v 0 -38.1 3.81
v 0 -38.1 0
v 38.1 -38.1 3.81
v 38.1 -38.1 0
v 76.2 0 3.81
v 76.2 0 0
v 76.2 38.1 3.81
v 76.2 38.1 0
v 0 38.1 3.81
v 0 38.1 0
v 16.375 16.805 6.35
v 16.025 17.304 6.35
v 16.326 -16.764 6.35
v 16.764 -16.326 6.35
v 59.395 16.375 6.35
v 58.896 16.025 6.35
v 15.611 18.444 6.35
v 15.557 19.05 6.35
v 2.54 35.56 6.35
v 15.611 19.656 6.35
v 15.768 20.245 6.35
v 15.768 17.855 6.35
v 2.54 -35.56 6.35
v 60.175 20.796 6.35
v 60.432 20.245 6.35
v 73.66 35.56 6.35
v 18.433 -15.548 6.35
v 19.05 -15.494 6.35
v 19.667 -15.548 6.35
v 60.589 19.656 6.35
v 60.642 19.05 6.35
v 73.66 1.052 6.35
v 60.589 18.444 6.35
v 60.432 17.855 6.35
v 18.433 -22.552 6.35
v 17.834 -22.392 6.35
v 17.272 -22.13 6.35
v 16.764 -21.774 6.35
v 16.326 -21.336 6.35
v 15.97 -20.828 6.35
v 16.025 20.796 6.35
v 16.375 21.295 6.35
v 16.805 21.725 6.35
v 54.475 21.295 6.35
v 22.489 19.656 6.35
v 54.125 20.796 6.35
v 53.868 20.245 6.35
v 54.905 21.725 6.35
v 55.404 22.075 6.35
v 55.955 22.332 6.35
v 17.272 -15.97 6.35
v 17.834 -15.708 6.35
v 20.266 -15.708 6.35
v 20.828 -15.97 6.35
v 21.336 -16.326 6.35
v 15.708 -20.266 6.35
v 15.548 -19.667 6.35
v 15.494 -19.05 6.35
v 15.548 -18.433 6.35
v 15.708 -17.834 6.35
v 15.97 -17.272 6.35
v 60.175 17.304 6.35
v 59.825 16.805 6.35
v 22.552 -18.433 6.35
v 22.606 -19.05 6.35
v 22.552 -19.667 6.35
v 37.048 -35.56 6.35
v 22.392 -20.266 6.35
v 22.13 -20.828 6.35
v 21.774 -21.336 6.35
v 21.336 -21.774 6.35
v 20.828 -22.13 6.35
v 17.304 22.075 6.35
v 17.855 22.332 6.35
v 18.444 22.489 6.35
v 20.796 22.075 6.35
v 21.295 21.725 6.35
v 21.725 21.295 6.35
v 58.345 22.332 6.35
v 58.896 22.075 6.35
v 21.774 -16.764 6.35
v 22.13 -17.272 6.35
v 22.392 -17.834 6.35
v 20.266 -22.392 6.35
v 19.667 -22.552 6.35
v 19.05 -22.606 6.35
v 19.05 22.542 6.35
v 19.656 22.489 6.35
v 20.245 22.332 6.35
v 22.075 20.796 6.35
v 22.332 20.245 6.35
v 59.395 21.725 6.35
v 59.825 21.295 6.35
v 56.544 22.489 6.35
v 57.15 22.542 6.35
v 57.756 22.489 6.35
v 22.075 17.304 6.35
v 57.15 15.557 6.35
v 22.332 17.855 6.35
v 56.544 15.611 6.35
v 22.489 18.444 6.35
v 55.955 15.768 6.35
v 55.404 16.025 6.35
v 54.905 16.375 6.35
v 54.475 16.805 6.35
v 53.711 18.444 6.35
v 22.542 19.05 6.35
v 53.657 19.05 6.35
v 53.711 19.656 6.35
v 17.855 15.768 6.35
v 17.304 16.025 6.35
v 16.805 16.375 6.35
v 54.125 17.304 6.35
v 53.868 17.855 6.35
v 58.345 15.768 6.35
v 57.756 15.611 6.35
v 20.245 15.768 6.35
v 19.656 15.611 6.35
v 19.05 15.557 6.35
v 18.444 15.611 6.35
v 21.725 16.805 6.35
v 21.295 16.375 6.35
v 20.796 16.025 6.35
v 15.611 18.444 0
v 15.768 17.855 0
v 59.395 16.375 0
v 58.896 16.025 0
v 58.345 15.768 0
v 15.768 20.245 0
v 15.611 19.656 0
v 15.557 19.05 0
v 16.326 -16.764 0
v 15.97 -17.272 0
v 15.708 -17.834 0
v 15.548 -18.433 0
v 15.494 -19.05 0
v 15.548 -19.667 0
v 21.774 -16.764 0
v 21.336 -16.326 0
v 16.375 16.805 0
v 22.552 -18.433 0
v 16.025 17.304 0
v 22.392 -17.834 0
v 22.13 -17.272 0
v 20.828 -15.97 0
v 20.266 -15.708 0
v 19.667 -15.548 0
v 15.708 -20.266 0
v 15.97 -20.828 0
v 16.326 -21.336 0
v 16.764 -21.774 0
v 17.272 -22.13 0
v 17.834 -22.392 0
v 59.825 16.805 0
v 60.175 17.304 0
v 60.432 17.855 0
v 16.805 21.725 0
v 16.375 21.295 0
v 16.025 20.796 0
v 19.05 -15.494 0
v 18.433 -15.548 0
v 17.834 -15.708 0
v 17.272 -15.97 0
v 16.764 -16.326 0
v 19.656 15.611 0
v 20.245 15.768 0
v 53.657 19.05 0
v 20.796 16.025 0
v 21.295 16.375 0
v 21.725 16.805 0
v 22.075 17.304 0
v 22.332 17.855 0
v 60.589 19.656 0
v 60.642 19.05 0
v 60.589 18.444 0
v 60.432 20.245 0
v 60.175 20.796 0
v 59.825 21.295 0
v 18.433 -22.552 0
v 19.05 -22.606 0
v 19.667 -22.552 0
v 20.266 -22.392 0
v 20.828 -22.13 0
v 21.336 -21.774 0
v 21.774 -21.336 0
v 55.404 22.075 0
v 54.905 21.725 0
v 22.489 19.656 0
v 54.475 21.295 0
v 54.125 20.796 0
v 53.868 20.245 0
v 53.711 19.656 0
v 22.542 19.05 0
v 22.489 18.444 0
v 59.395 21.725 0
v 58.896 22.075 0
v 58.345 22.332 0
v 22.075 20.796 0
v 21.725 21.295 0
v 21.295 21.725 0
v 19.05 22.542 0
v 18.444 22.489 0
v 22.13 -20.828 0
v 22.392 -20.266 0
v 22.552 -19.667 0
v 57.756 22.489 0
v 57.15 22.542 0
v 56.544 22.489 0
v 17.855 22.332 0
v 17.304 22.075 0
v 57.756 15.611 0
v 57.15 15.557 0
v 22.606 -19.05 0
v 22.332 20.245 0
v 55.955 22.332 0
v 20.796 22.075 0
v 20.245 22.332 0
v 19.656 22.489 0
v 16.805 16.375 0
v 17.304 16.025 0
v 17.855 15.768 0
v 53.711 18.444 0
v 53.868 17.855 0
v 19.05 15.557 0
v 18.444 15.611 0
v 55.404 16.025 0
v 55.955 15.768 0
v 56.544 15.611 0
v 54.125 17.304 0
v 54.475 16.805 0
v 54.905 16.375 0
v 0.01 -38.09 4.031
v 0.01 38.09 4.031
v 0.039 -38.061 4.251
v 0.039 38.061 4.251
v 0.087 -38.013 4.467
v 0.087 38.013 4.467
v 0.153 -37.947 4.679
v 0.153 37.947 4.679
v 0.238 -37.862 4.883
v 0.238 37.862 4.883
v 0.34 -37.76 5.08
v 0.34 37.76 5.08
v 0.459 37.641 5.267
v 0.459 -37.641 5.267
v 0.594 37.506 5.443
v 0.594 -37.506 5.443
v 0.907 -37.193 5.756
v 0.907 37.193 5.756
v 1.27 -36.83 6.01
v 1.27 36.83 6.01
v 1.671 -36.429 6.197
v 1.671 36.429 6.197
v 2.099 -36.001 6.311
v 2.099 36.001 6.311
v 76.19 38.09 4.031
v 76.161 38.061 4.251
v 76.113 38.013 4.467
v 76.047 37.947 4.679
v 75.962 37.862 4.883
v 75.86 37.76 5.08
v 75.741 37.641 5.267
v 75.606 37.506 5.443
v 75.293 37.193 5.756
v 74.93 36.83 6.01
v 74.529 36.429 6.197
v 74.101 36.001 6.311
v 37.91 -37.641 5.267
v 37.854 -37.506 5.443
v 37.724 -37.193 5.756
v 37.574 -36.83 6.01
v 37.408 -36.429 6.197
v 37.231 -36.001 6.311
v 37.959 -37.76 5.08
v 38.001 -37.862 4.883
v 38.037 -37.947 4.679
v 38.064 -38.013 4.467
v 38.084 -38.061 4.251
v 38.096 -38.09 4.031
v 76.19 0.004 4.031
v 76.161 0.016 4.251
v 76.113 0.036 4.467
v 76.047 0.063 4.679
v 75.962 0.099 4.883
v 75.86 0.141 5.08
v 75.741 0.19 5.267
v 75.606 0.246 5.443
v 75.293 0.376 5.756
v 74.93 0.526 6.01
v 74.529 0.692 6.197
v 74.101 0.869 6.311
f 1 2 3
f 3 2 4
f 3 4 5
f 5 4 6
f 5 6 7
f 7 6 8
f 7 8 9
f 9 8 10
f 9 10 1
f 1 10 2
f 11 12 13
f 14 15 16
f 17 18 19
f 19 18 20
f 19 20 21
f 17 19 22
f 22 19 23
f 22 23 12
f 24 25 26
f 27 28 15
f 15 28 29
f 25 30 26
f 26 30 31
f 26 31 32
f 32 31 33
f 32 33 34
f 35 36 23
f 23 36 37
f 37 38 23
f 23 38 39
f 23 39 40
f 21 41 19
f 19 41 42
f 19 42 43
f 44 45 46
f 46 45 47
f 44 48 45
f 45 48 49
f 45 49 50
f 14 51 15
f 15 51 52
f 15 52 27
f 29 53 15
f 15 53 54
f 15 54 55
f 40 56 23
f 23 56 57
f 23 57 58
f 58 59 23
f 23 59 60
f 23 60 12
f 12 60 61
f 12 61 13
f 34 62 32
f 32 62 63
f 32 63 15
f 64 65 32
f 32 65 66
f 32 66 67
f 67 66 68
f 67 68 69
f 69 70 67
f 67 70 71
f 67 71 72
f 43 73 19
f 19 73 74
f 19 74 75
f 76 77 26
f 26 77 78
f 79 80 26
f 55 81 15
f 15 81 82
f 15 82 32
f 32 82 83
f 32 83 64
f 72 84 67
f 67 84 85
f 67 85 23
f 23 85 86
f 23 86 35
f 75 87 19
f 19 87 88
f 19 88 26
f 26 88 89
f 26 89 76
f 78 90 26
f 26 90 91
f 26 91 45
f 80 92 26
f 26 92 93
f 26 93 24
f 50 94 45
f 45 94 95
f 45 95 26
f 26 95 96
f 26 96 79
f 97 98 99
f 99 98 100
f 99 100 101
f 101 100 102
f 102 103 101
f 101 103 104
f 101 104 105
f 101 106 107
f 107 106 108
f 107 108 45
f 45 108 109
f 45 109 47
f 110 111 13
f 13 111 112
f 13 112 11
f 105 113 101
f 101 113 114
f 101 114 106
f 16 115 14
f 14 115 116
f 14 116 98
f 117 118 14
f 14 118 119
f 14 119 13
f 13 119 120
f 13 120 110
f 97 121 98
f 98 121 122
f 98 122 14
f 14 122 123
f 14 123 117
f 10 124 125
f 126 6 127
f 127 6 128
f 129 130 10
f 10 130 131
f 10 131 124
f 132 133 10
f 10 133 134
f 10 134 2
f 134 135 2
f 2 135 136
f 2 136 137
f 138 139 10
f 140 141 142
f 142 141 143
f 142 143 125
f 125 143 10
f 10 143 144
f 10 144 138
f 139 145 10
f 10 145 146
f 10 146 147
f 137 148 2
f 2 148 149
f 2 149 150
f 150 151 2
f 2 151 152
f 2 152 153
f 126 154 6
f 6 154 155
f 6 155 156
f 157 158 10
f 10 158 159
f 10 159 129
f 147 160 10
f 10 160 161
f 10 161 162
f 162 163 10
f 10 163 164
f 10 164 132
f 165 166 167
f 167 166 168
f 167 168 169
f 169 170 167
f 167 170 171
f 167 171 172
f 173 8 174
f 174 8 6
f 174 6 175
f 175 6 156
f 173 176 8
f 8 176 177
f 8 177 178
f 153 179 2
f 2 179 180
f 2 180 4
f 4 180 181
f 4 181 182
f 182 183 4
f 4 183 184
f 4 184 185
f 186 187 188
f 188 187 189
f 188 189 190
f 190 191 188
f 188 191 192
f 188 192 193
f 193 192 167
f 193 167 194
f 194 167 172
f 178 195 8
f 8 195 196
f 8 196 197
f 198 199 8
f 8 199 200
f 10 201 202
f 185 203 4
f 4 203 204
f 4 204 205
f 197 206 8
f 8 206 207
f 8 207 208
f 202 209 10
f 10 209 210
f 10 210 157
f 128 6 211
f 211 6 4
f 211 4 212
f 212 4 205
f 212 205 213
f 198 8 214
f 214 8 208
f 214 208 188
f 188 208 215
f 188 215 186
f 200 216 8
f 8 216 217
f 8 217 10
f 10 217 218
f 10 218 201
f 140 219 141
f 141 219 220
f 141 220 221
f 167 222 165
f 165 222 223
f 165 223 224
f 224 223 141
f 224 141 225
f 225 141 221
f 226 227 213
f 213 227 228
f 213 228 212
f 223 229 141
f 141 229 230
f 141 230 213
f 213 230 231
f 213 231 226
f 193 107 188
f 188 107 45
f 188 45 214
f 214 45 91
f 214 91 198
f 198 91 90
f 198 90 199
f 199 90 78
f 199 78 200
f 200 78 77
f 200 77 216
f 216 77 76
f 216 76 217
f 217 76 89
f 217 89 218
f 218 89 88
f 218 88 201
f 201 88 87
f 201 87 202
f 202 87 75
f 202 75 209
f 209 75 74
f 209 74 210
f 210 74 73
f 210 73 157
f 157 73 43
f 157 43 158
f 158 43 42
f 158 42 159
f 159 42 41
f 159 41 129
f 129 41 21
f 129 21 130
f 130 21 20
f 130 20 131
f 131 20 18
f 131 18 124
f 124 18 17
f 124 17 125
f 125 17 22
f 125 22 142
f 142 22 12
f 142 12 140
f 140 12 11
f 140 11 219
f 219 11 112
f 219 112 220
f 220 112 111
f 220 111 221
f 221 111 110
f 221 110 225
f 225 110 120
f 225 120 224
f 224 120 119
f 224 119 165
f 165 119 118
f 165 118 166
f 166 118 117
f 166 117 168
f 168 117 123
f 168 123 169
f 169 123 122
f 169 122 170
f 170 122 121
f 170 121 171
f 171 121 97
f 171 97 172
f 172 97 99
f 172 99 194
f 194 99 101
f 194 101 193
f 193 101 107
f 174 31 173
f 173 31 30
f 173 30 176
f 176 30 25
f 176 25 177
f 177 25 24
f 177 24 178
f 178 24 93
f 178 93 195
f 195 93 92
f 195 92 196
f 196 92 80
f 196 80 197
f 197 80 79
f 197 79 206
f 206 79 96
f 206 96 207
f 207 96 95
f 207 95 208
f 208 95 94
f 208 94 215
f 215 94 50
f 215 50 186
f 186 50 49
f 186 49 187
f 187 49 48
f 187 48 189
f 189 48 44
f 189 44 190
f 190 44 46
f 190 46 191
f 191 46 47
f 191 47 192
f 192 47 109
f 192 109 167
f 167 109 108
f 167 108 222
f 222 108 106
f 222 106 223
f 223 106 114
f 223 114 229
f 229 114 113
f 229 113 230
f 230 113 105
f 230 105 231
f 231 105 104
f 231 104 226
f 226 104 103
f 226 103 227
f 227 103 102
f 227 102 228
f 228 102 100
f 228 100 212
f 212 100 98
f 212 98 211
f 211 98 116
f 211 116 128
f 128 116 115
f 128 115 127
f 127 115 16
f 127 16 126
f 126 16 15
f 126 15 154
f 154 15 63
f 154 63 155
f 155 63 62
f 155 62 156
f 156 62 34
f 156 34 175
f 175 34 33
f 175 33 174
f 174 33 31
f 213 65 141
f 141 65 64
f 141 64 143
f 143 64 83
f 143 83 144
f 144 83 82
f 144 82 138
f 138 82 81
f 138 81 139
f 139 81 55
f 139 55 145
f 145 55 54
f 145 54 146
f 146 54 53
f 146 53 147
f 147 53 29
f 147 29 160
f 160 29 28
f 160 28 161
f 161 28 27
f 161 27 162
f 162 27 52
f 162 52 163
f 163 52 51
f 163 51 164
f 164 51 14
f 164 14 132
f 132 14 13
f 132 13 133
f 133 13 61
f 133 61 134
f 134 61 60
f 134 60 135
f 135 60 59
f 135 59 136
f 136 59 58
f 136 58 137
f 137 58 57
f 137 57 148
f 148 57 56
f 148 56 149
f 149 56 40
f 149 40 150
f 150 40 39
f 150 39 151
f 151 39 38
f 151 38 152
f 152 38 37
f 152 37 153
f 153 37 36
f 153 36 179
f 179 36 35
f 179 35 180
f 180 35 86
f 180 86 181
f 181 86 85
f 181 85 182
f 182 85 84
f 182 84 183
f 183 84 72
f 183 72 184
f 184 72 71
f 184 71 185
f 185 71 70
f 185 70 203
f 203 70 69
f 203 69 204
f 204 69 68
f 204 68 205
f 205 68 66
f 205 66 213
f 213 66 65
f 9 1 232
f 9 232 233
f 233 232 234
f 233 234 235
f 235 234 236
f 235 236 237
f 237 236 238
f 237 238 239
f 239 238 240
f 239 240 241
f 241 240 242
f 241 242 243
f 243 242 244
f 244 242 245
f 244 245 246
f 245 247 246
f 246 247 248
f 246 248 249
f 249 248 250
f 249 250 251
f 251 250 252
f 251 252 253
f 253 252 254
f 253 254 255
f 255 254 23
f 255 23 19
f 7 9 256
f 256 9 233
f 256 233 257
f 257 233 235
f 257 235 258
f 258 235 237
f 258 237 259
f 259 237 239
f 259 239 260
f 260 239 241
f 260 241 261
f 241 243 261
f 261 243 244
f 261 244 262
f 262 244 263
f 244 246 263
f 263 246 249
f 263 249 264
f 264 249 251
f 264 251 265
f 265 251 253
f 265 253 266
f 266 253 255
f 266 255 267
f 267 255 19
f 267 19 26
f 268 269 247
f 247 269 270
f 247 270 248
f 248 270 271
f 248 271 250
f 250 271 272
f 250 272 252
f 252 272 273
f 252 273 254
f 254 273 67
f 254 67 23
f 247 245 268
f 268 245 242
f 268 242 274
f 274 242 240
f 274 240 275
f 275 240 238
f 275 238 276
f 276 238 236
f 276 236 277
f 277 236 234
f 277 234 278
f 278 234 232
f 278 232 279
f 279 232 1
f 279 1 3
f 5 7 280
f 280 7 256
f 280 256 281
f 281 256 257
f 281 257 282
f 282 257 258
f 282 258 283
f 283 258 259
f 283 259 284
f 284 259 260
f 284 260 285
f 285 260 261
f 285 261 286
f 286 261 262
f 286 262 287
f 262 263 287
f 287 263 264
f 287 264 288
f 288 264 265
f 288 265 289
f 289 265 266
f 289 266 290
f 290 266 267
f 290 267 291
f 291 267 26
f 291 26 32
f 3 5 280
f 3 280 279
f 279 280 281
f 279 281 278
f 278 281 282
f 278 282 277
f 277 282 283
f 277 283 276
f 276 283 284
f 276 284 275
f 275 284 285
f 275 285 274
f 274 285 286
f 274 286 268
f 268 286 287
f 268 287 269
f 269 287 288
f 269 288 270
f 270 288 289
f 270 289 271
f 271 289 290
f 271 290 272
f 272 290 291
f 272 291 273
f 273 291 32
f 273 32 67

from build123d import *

# Parameters (mm, degrees)
BOSS_EXTRUDE1_DEPTH = 6.35
SKETCH2_R           = 3.4925
SKETCH2_R_2         = 3.556
CUT_EXTRUDE1_DEPTH  = 6.35
FILLET1_R           = 2.54


with BuildPart() as part:
    # Sketch1 → Boss-Extrude1 (new body)
    with BuildSketch(Plane.XY):
        Polygon((38.1, -38.1), (76.2, 0), (76.2, 38.1), (0, 38.1), (0, 0), (0, -38.1), align=None)
    extrude(amount=BOSS_EXTRUDE1_DEPTH)

    # Sketch2 → Cut-Extrude1 (cut)
    with BuildSketch(Plane.XY.offset(6.35)):
        with Locations((19.05, 19.05)):
            Circle(SKETCH2_R)
        with Locations((57.15, 19.05)):
            Circle(SKETCH2_R)
        with Locations((19.05, -19.05)):
            Circle(SKETCH2_R_2)
    extrude(amount=-CUT_EXTRUDE1_DEPTH, mode=Mode.SUBTRACT)

    # Fillet1
    fillet1_edges = [part.edges().sort_by_distance(p)[0] for p in [
        (57.15, -19.05, 6.35),
        (76.2, 19.05, 6.35),
        (38.1, 38.1, 6.35),
        (0, 0, 6.35),
        (19.05, -38.1, 6.35),
    ]]
    fillet(fillet1_edges, radius=FILLET1_R)


solid = part.part
